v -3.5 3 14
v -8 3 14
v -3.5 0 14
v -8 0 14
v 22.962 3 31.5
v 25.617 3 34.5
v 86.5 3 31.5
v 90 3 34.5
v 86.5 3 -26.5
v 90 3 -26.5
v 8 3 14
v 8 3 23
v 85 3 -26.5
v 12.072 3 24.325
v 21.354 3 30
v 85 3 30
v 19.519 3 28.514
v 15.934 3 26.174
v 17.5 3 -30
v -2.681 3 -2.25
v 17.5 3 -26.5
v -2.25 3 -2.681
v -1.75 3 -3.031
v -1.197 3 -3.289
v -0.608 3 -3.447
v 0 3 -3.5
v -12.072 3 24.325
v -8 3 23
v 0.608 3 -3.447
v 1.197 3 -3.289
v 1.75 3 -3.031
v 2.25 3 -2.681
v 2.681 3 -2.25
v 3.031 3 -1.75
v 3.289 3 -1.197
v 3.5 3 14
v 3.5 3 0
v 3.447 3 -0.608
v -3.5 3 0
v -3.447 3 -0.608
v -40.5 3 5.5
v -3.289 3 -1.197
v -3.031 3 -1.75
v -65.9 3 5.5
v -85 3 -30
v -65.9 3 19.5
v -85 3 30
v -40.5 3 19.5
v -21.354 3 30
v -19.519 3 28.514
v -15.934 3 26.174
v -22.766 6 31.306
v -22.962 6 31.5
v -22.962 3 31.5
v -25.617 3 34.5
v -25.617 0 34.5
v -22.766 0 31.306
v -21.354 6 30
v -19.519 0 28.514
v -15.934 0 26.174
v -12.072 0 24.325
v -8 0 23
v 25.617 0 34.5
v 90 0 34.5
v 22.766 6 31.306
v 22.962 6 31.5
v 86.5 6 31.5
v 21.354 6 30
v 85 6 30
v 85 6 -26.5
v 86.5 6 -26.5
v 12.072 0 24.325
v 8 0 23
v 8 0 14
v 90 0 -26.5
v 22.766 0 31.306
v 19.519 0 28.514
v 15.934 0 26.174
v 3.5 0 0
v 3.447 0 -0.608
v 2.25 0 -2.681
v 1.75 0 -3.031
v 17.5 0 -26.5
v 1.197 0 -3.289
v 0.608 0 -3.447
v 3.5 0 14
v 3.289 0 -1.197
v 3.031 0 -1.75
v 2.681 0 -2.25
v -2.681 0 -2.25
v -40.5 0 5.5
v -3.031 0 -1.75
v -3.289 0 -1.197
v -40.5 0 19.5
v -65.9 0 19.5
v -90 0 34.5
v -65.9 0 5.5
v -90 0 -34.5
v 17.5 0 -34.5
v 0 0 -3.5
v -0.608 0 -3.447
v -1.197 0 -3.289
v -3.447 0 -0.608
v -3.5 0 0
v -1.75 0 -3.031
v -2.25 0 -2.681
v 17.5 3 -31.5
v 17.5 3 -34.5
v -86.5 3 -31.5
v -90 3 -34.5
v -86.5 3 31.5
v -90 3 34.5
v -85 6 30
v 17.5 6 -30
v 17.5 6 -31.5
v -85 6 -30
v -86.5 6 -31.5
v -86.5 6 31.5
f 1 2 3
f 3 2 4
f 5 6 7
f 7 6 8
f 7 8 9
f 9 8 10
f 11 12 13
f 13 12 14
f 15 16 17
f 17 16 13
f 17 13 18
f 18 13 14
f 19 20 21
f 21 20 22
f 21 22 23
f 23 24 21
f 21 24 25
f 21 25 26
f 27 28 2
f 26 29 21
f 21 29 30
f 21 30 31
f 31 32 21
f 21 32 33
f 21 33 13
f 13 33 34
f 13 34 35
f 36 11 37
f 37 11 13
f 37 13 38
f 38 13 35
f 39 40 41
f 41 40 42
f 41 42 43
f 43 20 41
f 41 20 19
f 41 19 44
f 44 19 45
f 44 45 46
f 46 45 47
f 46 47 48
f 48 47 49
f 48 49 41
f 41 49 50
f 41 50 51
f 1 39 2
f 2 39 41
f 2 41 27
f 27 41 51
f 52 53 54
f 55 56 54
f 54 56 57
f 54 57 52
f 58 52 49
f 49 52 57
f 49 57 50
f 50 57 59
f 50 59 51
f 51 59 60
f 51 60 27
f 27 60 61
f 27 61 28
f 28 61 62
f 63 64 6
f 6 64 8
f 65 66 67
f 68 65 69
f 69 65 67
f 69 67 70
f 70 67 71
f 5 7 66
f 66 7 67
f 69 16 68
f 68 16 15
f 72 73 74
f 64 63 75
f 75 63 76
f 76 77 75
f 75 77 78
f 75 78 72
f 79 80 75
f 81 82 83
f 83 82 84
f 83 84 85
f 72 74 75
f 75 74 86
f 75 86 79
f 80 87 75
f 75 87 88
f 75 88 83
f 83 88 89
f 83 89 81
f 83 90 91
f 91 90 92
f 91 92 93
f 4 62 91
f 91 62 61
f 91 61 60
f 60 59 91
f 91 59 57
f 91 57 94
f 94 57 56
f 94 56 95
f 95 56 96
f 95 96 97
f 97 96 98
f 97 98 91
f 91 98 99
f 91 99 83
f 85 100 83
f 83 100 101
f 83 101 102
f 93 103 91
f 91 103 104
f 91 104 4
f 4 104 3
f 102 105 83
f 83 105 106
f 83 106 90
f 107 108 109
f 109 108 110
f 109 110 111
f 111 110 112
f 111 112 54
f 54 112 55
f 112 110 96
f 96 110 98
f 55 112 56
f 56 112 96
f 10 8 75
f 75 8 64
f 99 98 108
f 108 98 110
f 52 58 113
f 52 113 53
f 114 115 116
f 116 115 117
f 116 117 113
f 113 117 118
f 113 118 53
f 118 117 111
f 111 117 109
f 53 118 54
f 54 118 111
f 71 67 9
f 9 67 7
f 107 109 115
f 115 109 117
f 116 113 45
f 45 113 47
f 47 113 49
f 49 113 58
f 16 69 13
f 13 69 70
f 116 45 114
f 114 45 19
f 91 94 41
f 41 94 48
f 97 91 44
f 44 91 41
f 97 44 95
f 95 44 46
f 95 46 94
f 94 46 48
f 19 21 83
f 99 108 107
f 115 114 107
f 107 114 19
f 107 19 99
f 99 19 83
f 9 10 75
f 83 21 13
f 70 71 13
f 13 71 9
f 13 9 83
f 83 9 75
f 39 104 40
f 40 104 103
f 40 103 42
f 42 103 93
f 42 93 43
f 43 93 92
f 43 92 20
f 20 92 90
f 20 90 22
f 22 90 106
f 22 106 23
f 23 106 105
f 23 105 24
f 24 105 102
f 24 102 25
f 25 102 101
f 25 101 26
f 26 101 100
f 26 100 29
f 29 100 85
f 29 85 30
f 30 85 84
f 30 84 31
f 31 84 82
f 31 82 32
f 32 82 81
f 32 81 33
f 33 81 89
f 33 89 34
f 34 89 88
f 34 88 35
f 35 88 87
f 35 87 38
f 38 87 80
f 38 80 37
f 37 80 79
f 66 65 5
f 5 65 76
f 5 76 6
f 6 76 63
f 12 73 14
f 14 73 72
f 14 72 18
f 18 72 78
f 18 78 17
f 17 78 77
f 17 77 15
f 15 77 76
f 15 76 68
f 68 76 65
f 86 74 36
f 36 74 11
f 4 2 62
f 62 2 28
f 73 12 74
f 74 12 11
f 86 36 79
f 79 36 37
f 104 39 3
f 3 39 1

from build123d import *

# Parameters (mm, degrees)
SKETCH2_W           = 180
SKETCH2_H           = 69
BOSS_EXTRUDE1_DEPTH = 3
SKETCH3_W           = 173
SKETCH3_H           = 63
SKETCH3_W_2         = 170
SKETCH3_H_2         = 60
BOSS_EXTRUDE2_DEPTH = 3
SKETCH4_W           = 25.4
SKETCH4_H           = 14
CUT_EXTRUDE1_DEPTH  = 10
SKETCH5_W           = 69
SKETCH5_H           = 1.5
CUT_EXTRUDE2_DEPTH  = 3
SKETCH6_W           = 1.5
SKETCH6_H           = 3.5
CUT_EXTRUDE3_DEPTH  = 3
SKETCH7_R           = 3.5
CUT_EXTRUDE4_DEPTH  = 3
SKETCH8_R           = 32.5
CUT_EXTRUDE5_DEPTH  = 10
SKETCH9_W           = 16
SKETCH9_H           = 16
CUT_EXTRUDE6_DEPTH  = 10
SKETCH10_W          = 72.5
SKETCH10_H          = 8
CUT_EXTRUDE7_DEPTH  = 10
SKETCH11_W          = 7
SKETCH11_H          = 14
CUT_EXTRUDE8_DEPTH  = 10


with BuildPart() as part:
    # Sketch2 → Boss-Extrude1 (new body)
    with BuildSketch(Plane(origin=(0, 0, 0), x_dir=(1, 0, 0), z_dir=(0, 1, 0))):
        Rectangle(SKETCH2_W, SKETCH2_H)
    extrude(amount=BOSS_EXTRUDE1_DEPTH)

    # Sketch3 → Boss-Extrude2 (add)
    with BuildSketch(Plane(origin=(0, 3, 0), x_dir=(1, 0, 0), z_dir=(0, 1, 0))):
        Rectangle(SKETCH3_W, SKETCH3_H)
        Rectangle(SKETCH3_W_2, SKETCH3_H_2, mode=Mode.SUBTRACT)
    extrude(amount=BOSS_EXTRUDE2_DEPTH)

    # Sketch4 → Cut-Extrude1 (cut)
    with BuildSketch(Plane.XZ):
        with Locations((-53.2, 12.5)):
            Rectangle(SKETCH4_W, SKETCH4_H)
    extrude(amount=-CUT_EXTRUDE1_DEPTH, mode=Mode.SUBTRACT)

    # Sketch5 → Cut-Extrude2 (cut)
    with BuildSketch(Plane(origin=(0, 6, 0), x_dir=(1, 0, 0), z_dir=(0, 1, 0))):
        with Locations((52, 30.75)):
            Rectangle(SKETCH5_W, SKETCH5_H)
    extrude(amount=-CUT_EXTRUDE2_DEPTH, mode=Mode.SUBTRACT)

    # Sketch6 → Cut-Extrude3 (cut)
    with BuildSketch(Plane(origin=(0, 6, 0), x_dir=(1, 0, 0), z_dir=(0, 1, 0))):
        with Locations((85.75, 28.25)):
            Rectangle(SKETCH6_W, SKETCH6_H)
    extrude(amount=-CUT_EXTRUDE3_DEPTH, mode=Mode.SUBTRACT)

    # Sketch7 → Cut-Extrude4 (cut)
    with BuildSketch(Plane.XZ):
        Circle(SKETCH7_R)
    extrude(amount=-CUT_EXTRUDE4_DEPTH, mode=Mode.SUBTRACT)

    # Sketch8 → Cut-Extrude5 (cut)
    with BuildSketch(Plane.XZ):
        with Locations((0, 54.5)):
            Circle(SKETCH8_R)
    extrude(amount=-CUT_EXTRUDE5_DEPTH, mode=Mode.SUBTRACT)

    # Sketch9 → Cut-Extrude6 (cut)
    with BuildSketch(Plane.XZ):
        with Locations((0, 22)):
            Rectangle(SKETCH9_W, SKETCH9_H)
    extrude(amount=-CUT_EXTRUDE6_DEPTH, mode=Mode.SUBTRACT)

    # Sketch10 → Cut-Extrude7 (cut)
    with BuildSketch(Plane(origin=(0, 3, 0), x_dir=(1, 0, 0), z_dir=(0, 1, 0))):
        with Locations((53.75, 30.5)):
            Rectangle(SKETCH10_W, SKETCH10_H)
    extrude(amount=-CUT_EXTRUDE7_DEPTH, mode=Mode.SUBTRACT)

    # Sketch11 → Cut-Extrude8 (cut)
    with BuildSketch(Plane(origin=(0, 0, 0), x_dir=(-1, 0, 0), z_dir=(0, -1, 0))):
        with Locations((0, -7)):
            Rectangle(SKETCH11_W, SKETCH11_H)
    extrude(amount=-CUT_EXTRUDE8_DEPTH, mode=Mode.SUBTRACT)


solid = part.part
